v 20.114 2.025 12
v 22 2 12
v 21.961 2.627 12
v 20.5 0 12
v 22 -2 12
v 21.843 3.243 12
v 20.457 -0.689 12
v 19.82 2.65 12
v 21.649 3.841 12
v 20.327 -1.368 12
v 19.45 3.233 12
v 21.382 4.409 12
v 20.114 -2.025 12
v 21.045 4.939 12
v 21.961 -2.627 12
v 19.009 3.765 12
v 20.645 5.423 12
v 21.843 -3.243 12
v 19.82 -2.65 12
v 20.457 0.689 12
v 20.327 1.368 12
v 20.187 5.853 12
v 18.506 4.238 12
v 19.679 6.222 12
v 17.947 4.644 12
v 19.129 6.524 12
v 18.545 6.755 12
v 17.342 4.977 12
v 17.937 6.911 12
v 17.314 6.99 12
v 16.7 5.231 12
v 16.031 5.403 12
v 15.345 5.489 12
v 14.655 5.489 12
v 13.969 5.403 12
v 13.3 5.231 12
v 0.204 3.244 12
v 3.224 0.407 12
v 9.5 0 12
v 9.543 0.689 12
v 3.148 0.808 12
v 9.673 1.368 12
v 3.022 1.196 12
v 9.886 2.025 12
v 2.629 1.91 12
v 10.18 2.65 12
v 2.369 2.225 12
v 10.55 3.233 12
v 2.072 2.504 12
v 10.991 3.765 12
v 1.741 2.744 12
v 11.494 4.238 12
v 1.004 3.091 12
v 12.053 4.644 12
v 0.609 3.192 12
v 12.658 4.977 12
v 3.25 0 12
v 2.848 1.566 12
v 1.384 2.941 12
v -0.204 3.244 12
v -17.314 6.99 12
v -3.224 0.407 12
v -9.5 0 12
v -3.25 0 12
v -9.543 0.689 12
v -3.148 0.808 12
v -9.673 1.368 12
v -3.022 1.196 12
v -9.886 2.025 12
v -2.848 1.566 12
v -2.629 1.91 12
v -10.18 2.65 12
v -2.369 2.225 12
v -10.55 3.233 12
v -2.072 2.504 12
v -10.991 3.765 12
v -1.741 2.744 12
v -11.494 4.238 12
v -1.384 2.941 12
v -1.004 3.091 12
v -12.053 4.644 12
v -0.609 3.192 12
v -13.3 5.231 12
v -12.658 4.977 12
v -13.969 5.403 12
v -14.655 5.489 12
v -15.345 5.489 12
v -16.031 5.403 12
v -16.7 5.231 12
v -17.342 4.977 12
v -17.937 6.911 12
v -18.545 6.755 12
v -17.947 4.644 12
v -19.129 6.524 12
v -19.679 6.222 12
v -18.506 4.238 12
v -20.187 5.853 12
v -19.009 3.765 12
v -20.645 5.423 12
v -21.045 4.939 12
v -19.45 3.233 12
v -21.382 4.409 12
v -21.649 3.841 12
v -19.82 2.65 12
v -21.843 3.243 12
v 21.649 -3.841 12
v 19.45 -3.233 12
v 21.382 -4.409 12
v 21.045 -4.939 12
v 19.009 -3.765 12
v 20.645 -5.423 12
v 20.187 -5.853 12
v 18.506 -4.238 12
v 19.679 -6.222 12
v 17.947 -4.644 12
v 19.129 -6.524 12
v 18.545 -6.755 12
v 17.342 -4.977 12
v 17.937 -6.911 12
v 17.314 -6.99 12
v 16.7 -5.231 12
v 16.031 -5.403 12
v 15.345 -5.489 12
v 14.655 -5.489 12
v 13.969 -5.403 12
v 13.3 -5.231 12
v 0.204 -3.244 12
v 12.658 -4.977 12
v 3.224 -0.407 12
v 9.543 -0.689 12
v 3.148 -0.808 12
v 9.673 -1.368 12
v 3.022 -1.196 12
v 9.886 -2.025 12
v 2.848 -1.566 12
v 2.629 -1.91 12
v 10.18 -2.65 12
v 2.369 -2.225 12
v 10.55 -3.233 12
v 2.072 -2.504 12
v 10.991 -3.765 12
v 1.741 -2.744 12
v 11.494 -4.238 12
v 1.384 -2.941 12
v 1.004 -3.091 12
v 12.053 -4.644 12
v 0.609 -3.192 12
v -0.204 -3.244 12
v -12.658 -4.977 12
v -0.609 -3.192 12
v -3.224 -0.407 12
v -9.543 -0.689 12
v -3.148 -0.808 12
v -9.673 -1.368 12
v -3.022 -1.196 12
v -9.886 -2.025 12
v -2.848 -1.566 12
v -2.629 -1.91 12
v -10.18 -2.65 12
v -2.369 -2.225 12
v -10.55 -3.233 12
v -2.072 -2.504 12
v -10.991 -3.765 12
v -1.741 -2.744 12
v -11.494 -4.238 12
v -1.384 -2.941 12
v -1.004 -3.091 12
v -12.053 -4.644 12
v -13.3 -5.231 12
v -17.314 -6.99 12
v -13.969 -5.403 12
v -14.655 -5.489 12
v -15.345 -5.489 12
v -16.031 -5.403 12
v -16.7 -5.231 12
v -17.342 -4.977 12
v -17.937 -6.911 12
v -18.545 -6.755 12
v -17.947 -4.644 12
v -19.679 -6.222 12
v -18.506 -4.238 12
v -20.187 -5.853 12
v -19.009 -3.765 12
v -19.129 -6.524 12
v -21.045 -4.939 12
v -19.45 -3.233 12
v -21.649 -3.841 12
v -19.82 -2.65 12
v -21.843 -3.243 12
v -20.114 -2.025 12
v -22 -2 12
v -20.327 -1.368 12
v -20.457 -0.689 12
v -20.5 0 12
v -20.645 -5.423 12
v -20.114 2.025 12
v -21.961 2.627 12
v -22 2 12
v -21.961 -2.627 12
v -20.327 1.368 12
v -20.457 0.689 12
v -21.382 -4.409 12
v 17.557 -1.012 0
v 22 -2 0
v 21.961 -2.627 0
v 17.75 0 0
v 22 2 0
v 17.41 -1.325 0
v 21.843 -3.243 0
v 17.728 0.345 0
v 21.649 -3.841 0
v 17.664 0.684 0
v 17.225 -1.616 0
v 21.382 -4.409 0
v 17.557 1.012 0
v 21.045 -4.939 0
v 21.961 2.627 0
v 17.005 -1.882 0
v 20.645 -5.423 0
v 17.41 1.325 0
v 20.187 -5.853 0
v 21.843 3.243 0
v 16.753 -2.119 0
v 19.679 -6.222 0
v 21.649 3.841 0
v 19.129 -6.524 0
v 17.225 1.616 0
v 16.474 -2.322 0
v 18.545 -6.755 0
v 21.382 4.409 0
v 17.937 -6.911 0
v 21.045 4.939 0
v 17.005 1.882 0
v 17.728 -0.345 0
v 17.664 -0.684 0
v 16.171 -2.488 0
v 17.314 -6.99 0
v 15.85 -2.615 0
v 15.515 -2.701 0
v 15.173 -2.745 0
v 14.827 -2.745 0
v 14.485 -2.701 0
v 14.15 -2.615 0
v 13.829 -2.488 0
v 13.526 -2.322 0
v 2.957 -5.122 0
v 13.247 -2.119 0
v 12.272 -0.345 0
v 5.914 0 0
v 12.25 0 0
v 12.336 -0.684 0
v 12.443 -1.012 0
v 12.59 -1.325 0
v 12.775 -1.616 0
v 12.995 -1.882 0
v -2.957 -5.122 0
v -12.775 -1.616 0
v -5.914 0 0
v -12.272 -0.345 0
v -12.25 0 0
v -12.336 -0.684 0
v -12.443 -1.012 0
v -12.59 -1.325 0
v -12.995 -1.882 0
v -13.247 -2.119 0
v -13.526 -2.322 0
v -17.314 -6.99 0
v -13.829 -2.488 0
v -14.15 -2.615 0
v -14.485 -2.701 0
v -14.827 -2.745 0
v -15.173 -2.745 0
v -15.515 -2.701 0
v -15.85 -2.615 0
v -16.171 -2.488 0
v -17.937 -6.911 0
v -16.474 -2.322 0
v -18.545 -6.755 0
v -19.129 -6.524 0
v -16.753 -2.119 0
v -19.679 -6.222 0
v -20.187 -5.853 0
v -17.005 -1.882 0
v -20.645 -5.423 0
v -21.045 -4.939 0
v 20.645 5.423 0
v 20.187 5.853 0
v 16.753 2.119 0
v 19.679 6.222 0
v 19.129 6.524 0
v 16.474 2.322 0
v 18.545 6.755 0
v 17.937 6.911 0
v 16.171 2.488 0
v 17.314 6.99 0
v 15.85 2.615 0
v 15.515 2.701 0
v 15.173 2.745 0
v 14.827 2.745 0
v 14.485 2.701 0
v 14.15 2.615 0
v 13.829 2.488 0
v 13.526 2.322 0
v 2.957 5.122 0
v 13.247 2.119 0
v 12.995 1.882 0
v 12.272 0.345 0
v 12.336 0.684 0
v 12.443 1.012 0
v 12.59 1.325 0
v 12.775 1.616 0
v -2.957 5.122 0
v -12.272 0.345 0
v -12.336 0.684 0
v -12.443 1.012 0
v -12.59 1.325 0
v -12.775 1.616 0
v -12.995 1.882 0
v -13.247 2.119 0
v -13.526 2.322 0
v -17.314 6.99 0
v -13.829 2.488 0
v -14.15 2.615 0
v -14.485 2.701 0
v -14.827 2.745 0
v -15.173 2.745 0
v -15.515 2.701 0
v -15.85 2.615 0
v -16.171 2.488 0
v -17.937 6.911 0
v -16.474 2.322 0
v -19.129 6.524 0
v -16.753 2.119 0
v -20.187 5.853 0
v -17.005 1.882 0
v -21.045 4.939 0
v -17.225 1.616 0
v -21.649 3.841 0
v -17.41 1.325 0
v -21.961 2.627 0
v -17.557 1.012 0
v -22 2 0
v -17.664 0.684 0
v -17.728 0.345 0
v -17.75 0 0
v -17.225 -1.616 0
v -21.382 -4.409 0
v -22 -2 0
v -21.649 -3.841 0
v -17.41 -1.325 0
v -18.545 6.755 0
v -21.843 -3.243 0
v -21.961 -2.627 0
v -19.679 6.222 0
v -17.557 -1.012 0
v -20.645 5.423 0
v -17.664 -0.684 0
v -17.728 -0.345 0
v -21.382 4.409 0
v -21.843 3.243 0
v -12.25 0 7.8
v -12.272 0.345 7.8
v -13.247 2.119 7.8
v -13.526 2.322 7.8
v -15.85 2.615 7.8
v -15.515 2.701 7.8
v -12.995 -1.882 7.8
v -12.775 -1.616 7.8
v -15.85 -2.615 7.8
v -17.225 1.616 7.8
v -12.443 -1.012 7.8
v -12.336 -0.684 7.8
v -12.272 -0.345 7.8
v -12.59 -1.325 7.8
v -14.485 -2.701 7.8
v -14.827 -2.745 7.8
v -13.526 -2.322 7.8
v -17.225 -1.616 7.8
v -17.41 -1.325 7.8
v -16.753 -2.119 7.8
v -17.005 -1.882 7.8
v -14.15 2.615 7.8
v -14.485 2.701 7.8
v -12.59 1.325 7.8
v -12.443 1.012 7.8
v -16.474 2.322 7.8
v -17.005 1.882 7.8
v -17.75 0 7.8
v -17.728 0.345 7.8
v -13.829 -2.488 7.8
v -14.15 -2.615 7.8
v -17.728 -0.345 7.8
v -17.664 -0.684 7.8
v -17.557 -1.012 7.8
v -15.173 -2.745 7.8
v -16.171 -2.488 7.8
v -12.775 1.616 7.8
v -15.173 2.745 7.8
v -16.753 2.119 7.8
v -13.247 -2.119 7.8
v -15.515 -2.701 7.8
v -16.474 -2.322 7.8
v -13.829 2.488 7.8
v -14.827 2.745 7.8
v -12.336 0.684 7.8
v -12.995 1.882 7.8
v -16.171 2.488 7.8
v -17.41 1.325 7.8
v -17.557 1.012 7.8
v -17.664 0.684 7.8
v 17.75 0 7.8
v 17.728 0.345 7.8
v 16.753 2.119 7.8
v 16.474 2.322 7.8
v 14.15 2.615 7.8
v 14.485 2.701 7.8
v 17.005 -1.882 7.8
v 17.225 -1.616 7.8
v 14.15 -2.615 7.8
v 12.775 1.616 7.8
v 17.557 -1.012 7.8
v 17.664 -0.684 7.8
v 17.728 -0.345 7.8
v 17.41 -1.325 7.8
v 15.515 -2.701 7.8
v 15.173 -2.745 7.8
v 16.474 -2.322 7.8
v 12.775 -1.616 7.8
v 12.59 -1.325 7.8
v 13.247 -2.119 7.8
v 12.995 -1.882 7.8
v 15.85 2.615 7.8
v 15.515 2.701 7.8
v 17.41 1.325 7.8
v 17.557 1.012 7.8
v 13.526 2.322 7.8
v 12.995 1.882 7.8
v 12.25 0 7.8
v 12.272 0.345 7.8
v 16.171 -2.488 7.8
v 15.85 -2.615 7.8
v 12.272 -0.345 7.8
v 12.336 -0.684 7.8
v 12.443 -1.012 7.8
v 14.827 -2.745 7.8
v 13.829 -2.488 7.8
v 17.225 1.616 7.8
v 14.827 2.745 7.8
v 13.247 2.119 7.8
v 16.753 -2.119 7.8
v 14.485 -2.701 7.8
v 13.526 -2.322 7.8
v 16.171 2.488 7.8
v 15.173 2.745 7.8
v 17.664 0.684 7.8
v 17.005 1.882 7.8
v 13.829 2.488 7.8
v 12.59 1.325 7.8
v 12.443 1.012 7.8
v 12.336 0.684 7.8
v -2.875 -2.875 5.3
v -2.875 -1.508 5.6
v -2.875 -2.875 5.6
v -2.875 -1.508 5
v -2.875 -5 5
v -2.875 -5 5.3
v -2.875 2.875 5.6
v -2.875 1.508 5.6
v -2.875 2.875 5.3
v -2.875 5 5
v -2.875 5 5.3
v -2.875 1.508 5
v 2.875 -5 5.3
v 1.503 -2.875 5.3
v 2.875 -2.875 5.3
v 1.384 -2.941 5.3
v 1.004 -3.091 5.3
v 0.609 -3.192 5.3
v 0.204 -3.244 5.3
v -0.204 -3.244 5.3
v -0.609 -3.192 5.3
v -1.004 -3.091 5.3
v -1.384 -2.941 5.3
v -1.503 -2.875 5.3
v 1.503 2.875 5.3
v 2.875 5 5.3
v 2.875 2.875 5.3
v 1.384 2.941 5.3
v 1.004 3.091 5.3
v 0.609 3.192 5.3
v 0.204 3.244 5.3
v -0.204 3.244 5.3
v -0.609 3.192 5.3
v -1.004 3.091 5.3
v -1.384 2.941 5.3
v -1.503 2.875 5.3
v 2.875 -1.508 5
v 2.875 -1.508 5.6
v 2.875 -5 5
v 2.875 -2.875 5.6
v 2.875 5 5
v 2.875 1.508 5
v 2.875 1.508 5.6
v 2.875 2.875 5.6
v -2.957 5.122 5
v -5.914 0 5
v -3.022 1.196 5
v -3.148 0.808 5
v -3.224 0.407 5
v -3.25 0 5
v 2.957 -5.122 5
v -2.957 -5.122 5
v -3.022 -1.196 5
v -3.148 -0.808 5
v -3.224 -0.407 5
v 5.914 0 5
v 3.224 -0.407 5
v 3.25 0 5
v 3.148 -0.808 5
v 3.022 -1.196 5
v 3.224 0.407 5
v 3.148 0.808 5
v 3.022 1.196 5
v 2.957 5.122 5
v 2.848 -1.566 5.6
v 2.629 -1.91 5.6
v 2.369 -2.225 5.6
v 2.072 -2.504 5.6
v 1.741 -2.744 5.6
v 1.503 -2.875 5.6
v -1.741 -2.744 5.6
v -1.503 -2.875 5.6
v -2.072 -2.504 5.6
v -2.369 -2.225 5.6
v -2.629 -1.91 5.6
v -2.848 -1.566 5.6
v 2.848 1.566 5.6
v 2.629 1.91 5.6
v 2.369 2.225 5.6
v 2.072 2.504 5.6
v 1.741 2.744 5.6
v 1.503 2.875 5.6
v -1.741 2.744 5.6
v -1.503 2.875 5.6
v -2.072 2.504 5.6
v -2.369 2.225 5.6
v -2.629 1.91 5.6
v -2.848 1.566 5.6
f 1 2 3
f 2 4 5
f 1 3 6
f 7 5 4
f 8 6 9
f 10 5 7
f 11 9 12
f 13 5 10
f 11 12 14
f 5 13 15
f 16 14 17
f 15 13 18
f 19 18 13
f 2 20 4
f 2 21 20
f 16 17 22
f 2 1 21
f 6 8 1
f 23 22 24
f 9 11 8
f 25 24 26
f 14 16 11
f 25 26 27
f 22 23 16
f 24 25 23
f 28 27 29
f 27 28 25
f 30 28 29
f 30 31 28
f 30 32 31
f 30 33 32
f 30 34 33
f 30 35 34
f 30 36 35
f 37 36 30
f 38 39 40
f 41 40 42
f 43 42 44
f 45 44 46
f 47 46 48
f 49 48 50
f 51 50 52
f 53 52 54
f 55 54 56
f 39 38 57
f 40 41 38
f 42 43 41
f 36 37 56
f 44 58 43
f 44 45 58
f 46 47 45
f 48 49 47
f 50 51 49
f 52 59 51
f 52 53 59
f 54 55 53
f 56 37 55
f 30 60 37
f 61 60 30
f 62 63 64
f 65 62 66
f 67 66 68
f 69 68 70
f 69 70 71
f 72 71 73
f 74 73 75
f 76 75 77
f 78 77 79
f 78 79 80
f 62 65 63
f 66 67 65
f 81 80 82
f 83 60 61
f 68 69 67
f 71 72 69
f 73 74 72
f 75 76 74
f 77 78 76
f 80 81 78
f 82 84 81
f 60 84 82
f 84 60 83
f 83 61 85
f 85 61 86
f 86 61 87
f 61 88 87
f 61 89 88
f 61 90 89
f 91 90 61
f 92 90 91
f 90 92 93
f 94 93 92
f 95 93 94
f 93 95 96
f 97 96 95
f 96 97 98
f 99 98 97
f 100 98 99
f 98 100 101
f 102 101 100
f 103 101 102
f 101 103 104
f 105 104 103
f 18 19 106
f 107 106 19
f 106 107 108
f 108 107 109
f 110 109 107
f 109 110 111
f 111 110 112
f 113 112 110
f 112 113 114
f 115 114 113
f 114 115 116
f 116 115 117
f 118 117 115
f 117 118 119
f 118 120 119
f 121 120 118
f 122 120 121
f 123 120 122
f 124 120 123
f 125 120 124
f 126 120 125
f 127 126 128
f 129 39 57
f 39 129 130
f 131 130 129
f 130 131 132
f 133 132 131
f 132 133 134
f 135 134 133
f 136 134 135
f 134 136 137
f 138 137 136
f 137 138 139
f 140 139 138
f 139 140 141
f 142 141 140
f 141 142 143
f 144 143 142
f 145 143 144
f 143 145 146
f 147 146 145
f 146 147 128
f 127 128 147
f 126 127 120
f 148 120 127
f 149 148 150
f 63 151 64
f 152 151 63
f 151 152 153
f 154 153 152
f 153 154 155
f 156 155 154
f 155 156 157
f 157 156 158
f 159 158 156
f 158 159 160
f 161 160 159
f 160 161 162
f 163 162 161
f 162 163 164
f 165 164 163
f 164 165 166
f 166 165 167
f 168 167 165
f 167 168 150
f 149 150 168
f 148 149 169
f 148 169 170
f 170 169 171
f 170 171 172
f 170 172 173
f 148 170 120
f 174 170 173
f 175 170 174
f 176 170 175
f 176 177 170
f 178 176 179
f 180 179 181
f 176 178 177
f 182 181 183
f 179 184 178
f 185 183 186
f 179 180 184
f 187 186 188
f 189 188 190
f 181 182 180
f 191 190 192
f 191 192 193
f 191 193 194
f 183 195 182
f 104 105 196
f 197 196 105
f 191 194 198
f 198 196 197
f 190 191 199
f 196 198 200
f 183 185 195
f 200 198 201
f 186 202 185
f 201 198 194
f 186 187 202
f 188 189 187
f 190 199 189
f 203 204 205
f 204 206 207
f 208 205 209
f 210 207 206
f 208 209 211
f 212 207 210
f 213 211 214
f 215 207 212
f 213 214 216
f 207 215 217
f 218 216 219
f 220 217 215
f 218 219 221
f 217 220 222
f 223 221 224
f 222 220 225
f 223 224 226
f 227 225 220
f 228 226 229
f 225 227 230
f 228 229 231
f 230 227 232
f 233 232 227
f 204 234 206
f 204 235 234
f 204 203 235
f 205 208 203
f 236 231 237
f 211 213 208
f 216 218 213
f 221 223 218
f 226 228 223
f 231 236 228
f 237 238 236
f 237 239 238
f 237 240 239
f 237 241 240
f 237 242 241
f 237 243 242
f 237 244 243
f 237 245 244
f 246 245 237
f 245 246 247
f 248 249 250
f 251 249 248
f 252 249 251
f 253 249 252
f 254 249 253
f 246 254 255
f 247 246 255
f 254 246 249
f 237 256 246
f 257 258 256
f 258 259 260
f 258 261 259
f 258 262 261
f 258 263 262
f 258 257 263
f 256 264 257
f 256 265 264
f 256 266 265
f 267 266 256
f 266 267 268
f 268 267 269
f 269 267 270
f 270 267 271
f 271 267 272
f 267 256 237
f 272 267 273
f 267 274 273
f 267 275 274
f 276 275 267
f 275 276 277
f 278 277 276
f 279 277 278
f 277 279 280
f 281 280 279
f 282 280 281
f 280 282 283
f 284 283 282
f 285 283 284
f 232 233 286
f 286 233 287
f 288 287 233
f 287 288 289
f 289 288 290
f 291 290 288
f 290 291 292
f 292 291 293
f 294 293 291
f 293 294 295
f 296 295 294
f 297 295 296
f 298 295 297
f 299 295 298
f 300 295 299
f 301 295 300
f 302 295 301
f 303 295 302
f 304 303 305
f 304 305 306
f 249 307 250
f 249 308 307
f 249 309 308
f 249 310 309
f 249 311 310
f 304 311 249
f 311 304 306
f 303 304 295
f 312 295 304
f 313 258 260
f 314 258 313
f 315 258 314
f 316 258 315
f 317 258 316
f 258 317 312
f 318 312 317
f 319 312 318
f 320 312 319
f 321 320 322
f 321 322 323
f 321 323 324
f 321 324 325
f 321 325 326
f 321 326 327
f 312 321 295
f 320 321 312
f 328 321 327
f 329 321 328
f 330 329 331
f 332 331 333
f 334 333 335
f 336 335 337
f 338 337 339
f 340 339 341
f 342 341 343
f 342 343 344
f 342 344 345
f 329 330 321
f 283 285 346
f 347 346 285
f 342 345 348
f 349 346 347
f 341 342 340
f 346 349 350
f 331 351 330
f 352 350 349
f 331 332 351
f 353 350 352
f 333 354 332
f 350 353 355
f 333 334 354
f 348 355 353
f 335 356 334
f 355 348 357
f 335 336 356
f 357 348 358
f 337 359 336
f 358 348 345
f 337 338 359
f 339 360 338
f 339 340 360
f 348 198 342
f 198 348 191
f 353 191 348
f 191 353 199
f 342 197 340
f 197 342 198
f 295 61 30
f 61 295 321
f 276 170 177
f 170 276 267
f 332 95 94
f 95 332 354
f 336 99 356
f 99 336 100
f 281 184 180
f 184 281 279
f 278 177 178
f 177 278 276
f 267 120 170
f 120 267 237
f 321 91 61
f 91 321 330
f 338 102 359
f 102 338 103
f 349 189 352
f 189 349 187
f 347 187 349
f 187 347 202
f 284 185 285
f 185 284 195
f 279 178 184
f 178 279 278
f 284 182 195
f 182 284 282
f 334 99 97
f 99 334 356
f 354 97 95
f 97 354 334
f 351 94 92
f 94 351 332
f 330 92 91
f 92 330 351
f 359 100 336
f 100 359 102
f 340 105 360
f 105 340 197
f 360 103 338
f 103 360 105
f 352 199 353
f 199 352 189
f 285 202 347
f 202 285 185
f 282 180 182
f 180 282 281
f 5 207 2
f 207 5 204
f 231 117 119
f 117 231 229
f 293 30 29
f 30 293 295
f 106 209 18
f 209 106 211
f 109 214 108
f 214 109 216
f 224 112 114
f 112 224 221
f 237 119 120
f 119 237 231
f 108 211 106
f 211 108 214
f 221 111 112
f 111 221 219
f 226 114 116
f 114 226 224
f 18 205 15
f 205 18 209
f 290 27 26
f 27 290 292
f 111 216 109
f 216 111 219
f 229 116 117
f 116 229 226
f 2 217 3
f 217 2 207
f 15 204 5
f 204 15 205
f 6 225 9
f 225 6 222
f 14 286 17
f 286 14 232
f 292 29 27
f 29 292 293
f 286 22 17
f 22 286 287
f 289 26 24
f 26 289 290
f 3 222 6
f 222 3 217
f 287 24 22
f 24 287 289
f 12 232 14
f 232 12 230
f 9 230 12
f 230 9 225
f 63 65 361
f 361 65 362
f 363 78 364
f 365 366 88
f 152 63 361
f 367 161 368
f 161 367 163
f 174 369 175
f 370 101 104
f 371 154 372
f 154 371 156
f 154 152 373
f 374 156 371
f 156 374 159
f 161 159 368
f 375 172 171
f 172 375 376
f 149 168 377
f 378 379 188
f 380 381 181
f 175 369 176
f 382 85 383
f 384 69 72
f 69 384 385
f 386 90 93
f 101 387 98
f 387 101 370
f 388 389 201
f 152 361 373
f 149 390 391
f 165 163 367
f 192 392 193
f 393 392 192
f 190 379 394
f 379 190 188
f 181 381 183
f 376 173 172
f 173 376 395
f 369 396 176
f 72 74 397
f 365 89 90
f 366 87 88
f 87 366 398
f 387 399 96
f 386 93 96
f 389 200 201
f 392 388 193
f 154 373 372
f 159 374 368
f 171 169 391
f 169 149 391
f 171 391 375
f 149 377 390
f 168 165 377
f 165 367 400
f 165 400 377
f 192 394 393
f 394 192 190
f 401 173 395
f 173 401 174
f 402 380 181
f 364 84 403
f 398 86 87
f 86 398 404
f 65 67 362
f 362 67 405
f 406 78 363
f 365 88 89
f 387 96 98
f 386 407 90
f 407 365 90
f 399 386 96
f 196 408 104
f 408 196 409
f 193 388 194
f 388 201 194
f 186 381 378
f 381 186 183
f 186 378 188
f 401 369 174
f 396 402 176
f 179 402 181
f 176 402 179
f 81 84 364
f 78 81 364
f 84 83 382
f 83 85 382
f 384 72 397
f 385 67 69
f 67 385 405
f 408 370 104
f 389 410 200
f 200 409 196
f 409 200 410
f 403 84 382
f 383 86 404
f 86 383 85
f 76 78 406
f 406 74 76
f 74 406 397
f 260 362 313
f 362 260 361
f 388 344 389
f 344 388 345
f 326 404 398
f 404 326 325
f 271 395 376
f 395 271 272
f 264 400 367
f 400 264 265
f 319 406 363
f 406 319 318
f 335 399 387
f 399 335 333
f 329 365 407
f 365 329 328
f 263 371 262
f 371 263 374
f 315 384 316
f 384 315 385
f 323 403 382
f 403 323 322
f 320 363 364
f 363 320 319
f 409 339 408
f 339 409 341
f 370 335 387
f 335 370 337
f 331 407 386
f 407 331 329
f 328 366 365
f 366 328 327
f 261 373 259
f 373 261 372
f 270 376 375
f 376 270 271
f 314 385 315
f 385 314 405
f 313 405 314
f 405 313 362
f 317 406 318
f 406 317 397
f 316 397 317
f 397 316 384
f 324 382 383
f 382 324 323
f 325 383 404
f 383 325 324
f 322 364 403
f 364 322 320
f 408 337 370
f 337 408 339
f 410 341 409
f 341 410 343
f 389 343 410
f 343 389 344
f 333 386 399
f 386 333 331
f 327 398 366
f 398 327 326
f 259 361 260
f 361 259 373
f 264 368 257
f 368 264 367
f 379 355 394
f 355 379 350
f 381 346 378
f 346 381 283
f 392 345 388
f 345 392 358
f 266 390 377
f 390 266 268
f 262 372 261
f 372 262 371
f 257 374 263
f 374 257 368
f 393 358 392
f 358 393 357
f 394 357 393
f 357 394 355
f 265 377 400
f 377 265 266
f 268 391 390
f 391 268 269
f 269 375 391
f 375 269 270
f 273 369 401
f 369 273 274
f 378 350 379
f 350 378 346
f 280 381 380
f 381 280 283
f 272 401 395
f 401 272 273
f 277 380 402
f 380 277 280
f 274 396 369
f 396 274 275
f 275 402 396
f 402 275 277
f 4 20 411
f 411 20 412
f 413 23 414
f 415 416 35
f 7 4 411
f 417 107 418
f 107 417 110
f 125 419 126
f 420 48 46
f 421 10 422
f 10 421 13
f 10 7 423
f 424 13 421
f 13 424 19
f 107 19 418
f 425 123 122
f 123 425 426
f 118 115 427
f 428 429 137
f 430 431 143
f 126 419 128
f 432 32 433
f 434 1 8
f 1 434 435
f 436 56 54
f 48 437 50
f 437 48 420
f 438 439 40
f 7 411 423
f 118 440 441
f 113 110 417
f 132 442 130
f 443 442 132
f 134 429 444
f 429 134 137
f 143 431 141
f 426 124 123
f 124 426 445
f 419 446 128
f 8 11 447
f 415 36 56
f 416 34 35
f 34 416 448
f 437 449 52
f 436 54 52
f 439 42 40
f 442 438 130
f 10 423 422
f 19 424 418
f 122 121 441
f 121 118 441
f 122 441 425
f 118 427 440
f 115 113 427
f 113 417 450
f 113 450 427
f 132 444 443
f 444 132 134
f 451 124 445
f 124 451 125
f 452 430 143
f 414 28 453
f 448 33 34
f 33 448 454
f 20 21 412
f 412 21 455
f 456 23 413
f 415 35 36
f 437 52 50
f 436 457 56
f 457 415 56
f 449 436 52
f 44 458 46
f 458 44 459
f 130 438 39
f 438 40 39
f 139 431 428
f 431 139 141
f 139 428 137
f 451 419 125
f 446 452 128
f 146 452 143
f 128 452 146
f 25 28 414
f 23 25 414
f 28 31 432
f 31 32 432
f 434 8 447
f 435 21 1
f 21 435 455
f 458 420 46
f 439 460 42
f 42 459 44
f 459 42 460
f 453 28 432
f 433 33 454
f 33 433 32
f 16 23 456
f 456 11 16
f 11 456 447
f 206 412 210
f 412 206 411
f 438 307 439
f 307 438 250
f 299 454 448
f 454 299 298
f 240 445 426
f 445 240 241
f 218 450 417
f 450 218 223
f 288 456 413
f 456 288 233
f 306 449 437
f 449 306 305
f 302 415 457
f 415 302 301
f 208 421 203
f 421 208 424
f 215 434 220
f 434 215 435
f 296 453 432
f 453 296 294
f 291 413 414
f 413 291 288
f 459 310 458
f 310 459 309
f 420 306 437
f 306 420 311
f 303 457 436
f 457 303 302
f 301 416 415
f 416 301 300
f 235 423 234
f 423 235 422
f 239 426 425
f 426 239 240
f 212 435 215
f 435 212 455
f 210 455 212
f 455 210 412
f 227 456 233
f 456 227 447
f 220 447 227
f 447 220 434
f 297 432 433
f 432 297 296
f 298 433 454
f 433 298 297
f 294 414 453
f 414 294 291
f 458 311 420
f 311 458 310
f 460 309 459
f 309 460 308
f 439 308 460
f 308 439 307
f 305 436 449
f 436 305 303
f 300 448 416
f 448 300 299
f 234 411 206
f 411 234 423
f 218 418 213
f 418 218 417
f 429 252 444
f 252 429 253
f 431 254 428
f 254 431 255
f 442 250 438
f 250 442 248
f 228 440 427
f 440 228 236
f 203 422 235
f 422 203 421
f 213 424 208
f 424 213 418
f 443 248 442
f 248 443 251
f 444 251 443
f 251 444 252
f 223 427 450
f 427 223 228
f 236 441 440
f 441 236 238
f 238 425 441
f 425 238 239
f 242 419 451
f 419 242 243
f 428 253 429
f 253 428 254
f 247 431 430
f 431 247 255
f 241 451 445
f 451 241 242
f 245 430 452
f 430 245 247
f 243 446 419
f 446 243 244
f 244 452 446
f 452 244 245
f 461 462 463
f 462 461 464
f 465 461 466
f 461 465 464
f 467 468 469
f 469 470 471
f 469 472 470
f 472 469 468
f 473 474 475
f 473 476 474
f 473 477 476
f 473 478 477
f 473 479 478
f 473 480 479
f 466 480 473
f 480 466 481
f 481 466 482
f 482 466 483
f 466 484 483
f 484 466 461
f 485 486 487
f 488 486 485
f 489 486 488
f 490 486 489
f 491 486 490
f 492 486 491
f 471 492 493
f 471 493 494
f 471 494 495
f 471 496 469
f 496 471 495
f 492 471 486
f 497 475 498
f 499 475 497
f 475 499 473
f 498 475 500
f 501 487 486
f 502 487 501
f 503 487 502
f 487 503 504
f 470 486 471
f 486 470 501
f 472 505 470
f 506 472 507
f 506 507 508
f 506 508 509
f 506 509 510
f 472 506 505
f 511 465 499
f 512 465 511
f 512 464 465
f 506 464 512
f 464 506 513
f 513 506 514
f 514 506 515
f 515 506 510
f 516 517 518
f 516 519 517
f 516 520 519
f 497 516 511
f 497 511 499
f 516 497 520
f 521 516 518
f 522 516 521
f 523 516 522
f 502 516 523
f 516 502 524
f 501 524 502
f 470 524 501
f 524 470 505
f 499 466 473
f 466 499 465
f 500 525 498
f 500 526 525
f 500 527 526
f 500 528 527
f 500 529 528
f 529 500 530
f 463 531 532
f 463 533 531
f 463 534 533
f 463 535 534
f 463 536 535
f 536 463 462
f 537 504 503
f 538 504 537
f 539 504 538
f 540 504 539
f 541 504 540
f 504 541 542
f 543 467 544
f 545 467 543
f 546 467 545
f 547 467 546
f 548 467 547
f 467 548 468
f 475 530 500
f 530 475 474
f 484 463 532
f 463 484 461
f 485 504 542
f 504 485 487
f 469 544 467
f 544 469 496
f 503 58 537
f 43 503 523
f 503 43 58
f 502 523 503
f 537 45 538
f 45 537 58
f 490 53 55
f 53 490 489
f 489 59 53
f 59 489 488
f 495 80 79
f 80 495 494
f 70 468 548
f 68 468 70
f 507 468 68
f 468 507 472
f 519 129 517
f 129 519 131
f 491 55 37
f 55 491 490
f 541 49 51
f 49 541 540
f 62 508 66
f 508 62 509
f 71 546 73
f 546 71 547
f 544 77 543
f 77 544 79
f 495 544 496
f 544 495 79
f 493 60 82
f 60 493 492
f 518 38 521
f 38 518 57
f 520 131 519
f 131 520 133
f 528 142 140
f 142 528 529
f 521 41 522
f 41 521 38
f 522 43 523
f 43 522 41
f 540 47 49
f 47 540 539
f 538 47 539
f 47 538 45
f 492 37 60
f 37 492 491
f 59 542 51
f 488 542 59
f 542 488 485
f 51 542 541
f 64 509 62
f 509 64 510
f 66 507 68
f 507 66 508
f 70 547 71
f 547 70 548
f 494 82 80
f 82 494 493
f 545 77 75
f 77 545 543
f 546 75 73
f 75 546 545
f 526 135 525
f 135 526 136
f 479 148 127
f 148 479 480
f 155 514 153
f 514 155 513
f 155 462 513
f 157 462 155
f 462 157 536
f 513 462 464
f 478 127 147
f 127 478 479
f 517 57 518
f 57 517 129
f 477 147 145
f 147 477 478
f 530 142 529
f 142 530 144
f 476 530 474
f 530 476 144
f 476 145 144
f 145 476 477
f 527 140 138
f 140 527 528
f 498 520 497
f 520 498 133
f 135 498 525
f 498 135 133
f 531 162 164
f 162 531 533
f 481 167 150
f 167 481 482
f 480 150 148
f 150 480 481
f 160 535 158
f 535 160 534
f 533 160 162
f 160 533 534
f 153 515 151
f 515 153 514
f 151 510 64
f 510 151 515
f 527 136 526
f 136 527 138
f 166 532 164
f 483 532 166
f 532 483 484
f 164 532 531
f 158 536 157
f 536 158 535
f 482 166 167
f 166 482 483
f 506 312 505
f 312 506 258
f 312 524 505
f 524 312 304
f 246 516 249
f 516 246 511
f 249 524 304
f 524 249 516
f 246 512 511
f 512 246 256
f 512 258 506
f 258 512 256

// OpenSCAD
$fn = 50;


difference() {
	union() {
		cylinder(h = 12, r = 7.0000000000);
		translate(v = [-7.5000000000, 0.0000000000, 0]) {
			hull() {
				translate(v = [-9.5000000000, 2.0000000000, 0]) {
					cylinder(h = 12, r = 5);
				}
				translate(v = [9.5000000000, 2.0000000000, 0]) {
					cylinder(h = 12, r = 5);
				}
				translate(v = [-9.5000000000, -2.0000000000, 0]) {
					cylinder(h = 12, r = 5);
				}
				translate(v = [9.5000000000, -2.0000000000, 0]) {
					cylinder(h = 12, r = 5);
				}
			}
		}
		translate(v = [-7.5000000000, 0.0000000000, 0]) {
			hull() {
				translate(v = [-9.5000000000, 2.0000000000, 0]) {
					cylinder(h = 12, r = 5);
				}
				translate(v = [9.5000000000, 2.0000000000, 0]) {
					cylinder(h = 12, r = 5);
				}
				translate(v = [-9.5000000000, -2.0000000000, 0]) {
					cylinder(h = 12, r = 5);
				}
				translate(v = [9.5000000000, -2.0000000000, 0]) {
					cylinder(h = 12, r = 5);
				}
			}
		}
		translate(v = [7.5000000000, 0.0000000000, 0]) {
			hull() {
				translate(v = [-9.5000000000, 2.0000000000, 0]) {
					cylinder(h = 12, r = 5);
				}
				translate(v = [9.5000000000, 2.0000000000, 0]) {
					cylinder(h = 12, r = 5);
				}
				translate(v = [-9.5000000000, -2.0000000000, 0]) {
					cylinder(h = 12, r = 5);
				}
				translate(v = [9.5000000000, -2.0000000000, 0]) {
					cylinder(h = 12, r = 5);
				}
			}
		}
		translate(v = [7.5000000000, 0.0000000000, 0]) {
			hull() {
				translate(v = [-9.5000000000, 2.0000000000, 0]) {
					cylinder(h = 12, r = 5);
				}
				translate(v = [9.5000000000, 2.0000000000, 0]) {
					cylinder(h = 12, r = 5);
				}
				translate(v = [-9.5000000000, -2.0000000000, 0]) {
					cylinder(h = 12, r = 5);
				}
				translate(v = [9.5000000000, -2.0000000000, 0]) {
					cylinder(h = 12, r = 5);
				}
			}
		}
	}
	union() {
		translate(v = [-15.0000000000, 0.0000000000, 12]) {
			rotate(a = [0, 0, 0]) {
				difference() {
					union() {
						#translate(v = [0, 0, -12.0000000000]) {
							cylinder(h = 12, r = 2.2500000000);
						}
						#translate(v = [0, 0, -4.2000000000]) {
							cylinder(h = 4.2000000000, r1 = 2.7500000000, r2 = 5.5000000000);
						}
						#translate(v = [0, 0, -12.0000000000]) {
							cylinder(h = 12, r = 2.7500000000);
						}
						#translate(v = [0, 0, -12.0000000000]) {
							cylinder(h = 12, r = 2.2500000000);
						}
					}
					union();
				}
			}
		}
		translate(v = [-15.0000000000, 0.0000000000, 12]) {
			rotate(a = [0, 0, 0]) {
				difference() {
					union() {
						#translate(v = [0, 0, -12.0000000000]) {
							cylinder(h = 12, r = 2.2500000000);
						}
						#translate(v = [0, 0, -4.2000000000]) {
							cylinder(h = 4.2000000000, r1 = 2.7500000000, r2 = 5.5000000000);
						}
						#translate(v = [0, 0, -12.0000000000]) {
							cylinder(h = 12, r = 2.7500000000);
						}
						#translate(v = [0, 0, -12.0000000000]) {
							cylinder(h = 12, r = 2.2500000000);
						}
					}
					union();
				}
			}
		}
		translate(v = [15.0000000000, 0.0000000000, 12]) {
			rotate(a = [0, 0, 0]) {
				difference() {
					union() {
						#translate(v = [0, 0, -12.0000000000]) {
							cylinder(h = 12, r = 2.2500000000);
						}
						#translate(v = [0, 0, -4.2000000000]) {
							cylinder(h = 4.2000000000, r1 = 2.7500000000, r2 = 5.5000000000);
						}
						#translate(v = [0, 0, -12.0000000000]) {
							cylinder(h = 12, r = 2.7500000000);
						}
						#translate(v = [0, 0, -12.0000000000]) {
							cylinder(h = 12, r = 2.2500000000);
						}
					}
					union();
				}
			}
		}
		translate(v = [15.0000000000, 0.0000000000, 12]) {
			rotate(a = [0, 0, 0]) {
				difference() {
					union() {
						#translate(v = [0, 0, -12.0000000000]) {
							cylinder(h = 12, r = 2.2500000000);
						}
						#translate(v = [0, 0, -4.2000000000]) {
							cylinder(h = 4.2000000000, r1 = 2.7500000000, r2 = 5.5000000000);
						}
						#translate(v = [0, 0, -12.0000000000]) {
							cylinder(h = 12, r = 2.7500000000);
						}
						#translate(v = [0, 0, -12.0000000000]) {
							cylinder(h = 12, r = 2.2500000000);
						}
					}
					union();
				}
			}
		}
		translate(v = [0.0000000000, 0.0000000000, 0]) {
			rotate(a = [0, 0, 0]) {
				difference() {
					union() {
						#translate(v = [-2.8750000000, -5.0000000000, -0.3000000000]) {
							cube(size = [5.7500000000, 10, 0.3000000000]);
						}
						#translate(v = [-2.8750000000, -2.8750000000, -0.6000000000]) {
							cube(size = [5.7500000000, 5.7500000000, 0.3000000000]);
						}
						#translate(v = [-2.8750000000, -5.0000000000, 5]) {
							cube(size = [5.7500000000, 10, 0.3000000000]);
						}
						#translate(v = [-2.8750000000, -2.8750000000, 5.3000000000]) {
							cube(size = [5.7500000000, 5.7500000000, 0.3000000000]);
						}
						#translate(v = [0, 0, -100.0000000000]) {
							cylinder(h = 200, r = 3.2500000000);
						}
						#linear_extrude(height = 5) {
							polygon(points = [[5.9142500000, 0.0000000000], [2.9571250000, 5.1218907443], [-2.9571250000, 5.1218907443], [-5.9142500000, 0.0000000000], [-2.9571250000, -5.1218907443], [2.9571250000, -5.1218907443]]);
						}
						#translate(v = [-2.8750000000, -5.0000000000, -0.3000000000]) {
							cube(size = [5.7500000000, 10, 0.3000000000]);
						}
						#translate(v = [-2.8750000000, -2.8750000000, -0.6000000000]) {
							cube(size = [5.7500000000, 5.7500000000, 0.3000000000]);
						}
						#translate(v = [-2.8750000000, -5.0000000000, 5]) {
							cube(size = [5.7500000000, 10, 0.3000000000]);
						}
						#translate(v = [-2.8750000000, -2.8750000000, 5.3000000000]) {
							cube(size = [5.7500000000, 5.7500000000, 0.3000000000]);
						}
						#translate(v = [0, 0, -100.0000000000]) {
							cylinder(h = 200, r = 3.2500000000);
						}
						#translate(v = [-2.8750000000, -5.0000000000, -0.3000000000]) {
							cube(size = [5.7500000000, 10, 0.3000000000]);
						}
						#translate(v = [-2.8750000000, -2.8750000000, -0.6000000000]) {
							cube(size = [5.7500000000, 5.7500000000, 0.3000000000]);
						}
						#translate(v = [-2.8750000000, -5.0000000000, 5]) {
							cube(size = [5.7500000000, 10, 0.3000000000]);
						}
						#translate(v = [-2.8750000000, -2.8750000000, 5.3000000000]) {
							cube(size = [5.7500000000, 5.7500000000, 0.3000000000]);
						}
						#translate(v = [0, 0, -100.0000000000]) {
							cylinder(h = 200, r = 3.2500000000);
						}
					}
					union();
				}
			}
		}
		translate(v = [0, 0, -100]) {
			cylinder(h = 200, r = 3.2500000000);
		}
		translate(v = [0, 0, -100]) {
			cylinder(h = 200, r = 1.8000000000);
		}
	}
}
